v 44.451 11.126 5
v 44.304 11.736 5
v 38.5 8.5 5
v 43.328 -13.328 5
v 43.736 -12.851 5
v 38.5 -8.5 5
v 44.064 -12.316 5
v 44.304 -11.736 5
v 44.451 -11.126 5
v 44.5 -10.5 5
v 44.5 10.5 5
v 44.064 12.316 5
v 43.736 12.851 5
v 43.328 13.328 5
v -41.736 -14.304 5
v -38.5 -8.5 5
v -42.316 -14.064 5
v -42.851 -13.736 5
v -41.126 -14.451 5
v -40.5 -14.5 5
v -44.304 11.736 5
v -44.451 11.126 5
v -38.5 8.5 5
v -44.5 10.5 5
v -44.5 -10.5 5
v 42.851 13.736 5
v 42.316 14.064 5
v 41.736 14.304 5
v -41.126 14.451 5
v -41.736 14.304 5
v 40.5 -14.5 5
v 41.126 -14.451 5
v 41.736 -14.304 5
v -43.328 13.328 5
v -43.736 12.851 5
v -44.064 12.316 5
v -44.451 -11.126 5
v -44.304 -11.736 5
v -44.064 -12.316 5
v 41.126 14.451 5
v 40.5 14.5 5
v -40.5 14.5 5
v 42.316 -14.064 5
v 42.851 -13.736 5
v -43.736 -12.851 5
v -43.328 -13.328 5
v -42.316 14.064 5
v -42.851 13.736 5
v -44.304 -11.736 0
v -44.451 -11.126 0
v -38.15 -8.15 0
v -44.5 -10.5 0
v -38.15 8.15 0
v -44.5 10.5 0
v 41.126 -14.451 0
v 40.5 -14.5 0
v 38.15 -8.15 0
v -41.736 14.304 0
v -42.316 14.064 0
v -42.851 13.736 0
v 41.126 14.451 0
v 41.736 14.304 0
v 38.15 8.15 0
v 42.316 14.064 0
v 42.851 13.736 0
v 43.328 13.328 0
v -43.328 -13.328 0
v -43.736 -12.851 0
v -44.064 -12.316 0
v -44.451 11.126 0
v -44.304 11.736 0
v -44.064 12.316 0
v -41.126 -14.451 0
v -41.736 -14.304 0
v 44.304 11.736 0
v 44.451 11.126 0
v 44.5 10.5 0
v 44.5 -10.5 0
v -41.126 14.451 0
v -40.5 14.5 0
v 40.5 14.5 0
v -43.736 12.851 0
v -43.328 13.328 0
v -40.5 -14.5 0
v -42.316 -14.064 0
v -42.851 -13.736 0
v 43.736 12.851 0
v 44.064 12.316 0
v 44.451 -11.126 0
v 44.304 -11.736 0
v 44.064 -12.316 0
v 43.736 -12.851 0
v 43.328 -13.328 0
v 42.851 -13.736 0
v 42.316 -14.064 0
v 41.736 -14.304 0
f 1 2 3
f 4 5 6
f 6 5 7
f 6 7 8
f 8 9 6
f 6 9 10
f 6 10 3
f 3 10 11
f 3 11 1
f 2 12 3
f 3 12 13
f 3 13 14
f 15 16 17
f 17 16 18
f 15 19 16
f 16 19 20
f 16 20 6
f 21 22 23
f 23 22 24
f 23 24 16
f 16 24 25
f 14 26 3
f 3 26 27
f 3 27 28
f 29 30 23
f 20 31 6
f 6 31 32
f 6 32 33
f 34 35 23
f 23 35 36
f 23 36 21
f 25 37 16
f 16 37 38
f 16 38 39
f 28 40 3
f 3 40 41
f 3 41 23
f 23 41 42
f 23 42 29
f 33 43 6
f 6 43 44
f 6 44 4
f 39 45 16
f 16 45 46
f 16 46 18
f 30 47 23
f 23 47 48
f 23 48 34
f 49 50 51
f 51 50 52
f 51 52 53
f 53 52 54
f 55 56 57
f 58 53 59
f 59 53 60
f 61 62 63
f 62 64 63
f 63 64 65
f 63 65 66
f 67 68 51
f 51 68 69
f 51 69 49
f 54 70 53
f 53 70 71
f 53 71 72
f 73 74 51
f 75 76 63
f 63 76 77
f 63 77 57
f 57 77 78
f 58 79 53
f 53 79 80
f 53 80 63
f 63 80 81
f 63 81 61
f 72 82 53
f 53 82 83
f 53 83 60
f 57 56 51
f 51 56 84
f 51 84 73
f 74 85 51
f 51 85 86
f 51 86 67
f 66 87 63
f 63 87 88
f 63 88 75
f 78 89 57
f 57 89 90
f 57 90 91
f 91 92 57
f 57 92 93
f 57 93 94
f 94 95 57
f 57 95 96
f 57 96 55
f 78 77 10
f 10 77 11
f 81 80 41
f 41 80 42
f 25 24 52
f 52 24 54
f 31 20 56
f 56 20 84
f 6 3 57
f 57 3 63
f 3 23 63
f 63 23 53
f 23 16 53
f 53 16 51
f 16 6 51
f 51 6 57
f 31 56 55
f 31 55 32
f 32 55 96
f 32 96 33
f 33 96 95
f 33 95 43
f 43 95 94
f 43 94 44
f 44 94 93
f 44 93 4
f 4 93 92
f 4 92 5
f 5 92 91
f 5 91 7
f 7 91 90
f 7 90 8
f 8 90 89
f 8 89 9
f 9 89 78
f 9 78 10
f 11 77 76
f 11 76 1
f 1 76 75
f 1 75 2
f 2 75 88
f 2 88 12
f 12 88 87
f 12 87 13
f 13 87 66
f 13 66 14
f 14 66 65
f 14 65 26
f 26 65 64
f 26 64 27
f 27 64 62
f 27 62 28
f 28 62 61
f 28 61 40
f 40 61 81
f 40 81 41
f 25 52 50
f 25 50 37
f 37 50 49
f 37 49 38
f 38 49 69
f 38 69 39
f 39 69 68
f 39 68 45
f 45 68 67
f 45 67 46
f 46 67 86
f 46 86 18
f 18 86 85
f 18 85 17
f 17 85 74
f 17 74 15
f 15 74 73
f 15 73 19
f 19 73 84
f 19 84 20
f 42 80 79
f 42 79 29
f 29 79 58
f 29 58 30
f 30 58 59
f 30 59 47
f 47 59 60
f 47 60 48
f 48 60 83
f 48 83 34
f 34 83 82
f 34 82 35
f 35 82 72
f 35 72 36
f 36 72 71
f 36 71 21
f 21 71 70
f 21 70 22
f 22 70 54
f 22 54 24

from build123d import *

# Parameters (mm, degrees)
SKETCH1_W           = 89
SKETCH1_H           = 29
SKETCH1_W_2         = 77
SKETCH1_H_2         = 17
BOSS_EXTRUDE1_DEPTH = 5
FILLET1_R           = 4
DRAFT1_ANGLE        = 4


with BuildPart() as part:
    # Sketch1 → Boss-Extrude1 (new body)
    with BuildSketch(Plane.XY):
        Rectangle(SKETCH1_W, SKETCH1_H)
        Rectangle(SKETCH1_W_2, SKETCH1_H_2, mode=Mode.SUBTRACT)
    extrude(amount=BOSS_EXTRUDE1_DEPTH)

    # Fillet1
    fillet1_edges = [part.edges().sort_by_distance(p)[0] for p in [
        (44.5, -14.5, 2.5),
        (-44.5, -14.5, 2.5),
        (-44.5, 14.5, 2.5),
        (44.5, 14.5, 2.5),
    ]]
    fillet(fillet1_edges, radius=FILLET1_R)

    # Draft1
    draft1_faces = [part.faces().sort_by_distance(p)[0] for p in [
        (38.5, 0, 2.5),
        (0, -8.5, 2.5),
        (-38.5, 0, 2.5),
        (0, 8.5, 2.5),
    ]]
    draft(draft1_faces, Plane.XY.offset(5), DRAFT1_ANGLE)


solid = part.part
